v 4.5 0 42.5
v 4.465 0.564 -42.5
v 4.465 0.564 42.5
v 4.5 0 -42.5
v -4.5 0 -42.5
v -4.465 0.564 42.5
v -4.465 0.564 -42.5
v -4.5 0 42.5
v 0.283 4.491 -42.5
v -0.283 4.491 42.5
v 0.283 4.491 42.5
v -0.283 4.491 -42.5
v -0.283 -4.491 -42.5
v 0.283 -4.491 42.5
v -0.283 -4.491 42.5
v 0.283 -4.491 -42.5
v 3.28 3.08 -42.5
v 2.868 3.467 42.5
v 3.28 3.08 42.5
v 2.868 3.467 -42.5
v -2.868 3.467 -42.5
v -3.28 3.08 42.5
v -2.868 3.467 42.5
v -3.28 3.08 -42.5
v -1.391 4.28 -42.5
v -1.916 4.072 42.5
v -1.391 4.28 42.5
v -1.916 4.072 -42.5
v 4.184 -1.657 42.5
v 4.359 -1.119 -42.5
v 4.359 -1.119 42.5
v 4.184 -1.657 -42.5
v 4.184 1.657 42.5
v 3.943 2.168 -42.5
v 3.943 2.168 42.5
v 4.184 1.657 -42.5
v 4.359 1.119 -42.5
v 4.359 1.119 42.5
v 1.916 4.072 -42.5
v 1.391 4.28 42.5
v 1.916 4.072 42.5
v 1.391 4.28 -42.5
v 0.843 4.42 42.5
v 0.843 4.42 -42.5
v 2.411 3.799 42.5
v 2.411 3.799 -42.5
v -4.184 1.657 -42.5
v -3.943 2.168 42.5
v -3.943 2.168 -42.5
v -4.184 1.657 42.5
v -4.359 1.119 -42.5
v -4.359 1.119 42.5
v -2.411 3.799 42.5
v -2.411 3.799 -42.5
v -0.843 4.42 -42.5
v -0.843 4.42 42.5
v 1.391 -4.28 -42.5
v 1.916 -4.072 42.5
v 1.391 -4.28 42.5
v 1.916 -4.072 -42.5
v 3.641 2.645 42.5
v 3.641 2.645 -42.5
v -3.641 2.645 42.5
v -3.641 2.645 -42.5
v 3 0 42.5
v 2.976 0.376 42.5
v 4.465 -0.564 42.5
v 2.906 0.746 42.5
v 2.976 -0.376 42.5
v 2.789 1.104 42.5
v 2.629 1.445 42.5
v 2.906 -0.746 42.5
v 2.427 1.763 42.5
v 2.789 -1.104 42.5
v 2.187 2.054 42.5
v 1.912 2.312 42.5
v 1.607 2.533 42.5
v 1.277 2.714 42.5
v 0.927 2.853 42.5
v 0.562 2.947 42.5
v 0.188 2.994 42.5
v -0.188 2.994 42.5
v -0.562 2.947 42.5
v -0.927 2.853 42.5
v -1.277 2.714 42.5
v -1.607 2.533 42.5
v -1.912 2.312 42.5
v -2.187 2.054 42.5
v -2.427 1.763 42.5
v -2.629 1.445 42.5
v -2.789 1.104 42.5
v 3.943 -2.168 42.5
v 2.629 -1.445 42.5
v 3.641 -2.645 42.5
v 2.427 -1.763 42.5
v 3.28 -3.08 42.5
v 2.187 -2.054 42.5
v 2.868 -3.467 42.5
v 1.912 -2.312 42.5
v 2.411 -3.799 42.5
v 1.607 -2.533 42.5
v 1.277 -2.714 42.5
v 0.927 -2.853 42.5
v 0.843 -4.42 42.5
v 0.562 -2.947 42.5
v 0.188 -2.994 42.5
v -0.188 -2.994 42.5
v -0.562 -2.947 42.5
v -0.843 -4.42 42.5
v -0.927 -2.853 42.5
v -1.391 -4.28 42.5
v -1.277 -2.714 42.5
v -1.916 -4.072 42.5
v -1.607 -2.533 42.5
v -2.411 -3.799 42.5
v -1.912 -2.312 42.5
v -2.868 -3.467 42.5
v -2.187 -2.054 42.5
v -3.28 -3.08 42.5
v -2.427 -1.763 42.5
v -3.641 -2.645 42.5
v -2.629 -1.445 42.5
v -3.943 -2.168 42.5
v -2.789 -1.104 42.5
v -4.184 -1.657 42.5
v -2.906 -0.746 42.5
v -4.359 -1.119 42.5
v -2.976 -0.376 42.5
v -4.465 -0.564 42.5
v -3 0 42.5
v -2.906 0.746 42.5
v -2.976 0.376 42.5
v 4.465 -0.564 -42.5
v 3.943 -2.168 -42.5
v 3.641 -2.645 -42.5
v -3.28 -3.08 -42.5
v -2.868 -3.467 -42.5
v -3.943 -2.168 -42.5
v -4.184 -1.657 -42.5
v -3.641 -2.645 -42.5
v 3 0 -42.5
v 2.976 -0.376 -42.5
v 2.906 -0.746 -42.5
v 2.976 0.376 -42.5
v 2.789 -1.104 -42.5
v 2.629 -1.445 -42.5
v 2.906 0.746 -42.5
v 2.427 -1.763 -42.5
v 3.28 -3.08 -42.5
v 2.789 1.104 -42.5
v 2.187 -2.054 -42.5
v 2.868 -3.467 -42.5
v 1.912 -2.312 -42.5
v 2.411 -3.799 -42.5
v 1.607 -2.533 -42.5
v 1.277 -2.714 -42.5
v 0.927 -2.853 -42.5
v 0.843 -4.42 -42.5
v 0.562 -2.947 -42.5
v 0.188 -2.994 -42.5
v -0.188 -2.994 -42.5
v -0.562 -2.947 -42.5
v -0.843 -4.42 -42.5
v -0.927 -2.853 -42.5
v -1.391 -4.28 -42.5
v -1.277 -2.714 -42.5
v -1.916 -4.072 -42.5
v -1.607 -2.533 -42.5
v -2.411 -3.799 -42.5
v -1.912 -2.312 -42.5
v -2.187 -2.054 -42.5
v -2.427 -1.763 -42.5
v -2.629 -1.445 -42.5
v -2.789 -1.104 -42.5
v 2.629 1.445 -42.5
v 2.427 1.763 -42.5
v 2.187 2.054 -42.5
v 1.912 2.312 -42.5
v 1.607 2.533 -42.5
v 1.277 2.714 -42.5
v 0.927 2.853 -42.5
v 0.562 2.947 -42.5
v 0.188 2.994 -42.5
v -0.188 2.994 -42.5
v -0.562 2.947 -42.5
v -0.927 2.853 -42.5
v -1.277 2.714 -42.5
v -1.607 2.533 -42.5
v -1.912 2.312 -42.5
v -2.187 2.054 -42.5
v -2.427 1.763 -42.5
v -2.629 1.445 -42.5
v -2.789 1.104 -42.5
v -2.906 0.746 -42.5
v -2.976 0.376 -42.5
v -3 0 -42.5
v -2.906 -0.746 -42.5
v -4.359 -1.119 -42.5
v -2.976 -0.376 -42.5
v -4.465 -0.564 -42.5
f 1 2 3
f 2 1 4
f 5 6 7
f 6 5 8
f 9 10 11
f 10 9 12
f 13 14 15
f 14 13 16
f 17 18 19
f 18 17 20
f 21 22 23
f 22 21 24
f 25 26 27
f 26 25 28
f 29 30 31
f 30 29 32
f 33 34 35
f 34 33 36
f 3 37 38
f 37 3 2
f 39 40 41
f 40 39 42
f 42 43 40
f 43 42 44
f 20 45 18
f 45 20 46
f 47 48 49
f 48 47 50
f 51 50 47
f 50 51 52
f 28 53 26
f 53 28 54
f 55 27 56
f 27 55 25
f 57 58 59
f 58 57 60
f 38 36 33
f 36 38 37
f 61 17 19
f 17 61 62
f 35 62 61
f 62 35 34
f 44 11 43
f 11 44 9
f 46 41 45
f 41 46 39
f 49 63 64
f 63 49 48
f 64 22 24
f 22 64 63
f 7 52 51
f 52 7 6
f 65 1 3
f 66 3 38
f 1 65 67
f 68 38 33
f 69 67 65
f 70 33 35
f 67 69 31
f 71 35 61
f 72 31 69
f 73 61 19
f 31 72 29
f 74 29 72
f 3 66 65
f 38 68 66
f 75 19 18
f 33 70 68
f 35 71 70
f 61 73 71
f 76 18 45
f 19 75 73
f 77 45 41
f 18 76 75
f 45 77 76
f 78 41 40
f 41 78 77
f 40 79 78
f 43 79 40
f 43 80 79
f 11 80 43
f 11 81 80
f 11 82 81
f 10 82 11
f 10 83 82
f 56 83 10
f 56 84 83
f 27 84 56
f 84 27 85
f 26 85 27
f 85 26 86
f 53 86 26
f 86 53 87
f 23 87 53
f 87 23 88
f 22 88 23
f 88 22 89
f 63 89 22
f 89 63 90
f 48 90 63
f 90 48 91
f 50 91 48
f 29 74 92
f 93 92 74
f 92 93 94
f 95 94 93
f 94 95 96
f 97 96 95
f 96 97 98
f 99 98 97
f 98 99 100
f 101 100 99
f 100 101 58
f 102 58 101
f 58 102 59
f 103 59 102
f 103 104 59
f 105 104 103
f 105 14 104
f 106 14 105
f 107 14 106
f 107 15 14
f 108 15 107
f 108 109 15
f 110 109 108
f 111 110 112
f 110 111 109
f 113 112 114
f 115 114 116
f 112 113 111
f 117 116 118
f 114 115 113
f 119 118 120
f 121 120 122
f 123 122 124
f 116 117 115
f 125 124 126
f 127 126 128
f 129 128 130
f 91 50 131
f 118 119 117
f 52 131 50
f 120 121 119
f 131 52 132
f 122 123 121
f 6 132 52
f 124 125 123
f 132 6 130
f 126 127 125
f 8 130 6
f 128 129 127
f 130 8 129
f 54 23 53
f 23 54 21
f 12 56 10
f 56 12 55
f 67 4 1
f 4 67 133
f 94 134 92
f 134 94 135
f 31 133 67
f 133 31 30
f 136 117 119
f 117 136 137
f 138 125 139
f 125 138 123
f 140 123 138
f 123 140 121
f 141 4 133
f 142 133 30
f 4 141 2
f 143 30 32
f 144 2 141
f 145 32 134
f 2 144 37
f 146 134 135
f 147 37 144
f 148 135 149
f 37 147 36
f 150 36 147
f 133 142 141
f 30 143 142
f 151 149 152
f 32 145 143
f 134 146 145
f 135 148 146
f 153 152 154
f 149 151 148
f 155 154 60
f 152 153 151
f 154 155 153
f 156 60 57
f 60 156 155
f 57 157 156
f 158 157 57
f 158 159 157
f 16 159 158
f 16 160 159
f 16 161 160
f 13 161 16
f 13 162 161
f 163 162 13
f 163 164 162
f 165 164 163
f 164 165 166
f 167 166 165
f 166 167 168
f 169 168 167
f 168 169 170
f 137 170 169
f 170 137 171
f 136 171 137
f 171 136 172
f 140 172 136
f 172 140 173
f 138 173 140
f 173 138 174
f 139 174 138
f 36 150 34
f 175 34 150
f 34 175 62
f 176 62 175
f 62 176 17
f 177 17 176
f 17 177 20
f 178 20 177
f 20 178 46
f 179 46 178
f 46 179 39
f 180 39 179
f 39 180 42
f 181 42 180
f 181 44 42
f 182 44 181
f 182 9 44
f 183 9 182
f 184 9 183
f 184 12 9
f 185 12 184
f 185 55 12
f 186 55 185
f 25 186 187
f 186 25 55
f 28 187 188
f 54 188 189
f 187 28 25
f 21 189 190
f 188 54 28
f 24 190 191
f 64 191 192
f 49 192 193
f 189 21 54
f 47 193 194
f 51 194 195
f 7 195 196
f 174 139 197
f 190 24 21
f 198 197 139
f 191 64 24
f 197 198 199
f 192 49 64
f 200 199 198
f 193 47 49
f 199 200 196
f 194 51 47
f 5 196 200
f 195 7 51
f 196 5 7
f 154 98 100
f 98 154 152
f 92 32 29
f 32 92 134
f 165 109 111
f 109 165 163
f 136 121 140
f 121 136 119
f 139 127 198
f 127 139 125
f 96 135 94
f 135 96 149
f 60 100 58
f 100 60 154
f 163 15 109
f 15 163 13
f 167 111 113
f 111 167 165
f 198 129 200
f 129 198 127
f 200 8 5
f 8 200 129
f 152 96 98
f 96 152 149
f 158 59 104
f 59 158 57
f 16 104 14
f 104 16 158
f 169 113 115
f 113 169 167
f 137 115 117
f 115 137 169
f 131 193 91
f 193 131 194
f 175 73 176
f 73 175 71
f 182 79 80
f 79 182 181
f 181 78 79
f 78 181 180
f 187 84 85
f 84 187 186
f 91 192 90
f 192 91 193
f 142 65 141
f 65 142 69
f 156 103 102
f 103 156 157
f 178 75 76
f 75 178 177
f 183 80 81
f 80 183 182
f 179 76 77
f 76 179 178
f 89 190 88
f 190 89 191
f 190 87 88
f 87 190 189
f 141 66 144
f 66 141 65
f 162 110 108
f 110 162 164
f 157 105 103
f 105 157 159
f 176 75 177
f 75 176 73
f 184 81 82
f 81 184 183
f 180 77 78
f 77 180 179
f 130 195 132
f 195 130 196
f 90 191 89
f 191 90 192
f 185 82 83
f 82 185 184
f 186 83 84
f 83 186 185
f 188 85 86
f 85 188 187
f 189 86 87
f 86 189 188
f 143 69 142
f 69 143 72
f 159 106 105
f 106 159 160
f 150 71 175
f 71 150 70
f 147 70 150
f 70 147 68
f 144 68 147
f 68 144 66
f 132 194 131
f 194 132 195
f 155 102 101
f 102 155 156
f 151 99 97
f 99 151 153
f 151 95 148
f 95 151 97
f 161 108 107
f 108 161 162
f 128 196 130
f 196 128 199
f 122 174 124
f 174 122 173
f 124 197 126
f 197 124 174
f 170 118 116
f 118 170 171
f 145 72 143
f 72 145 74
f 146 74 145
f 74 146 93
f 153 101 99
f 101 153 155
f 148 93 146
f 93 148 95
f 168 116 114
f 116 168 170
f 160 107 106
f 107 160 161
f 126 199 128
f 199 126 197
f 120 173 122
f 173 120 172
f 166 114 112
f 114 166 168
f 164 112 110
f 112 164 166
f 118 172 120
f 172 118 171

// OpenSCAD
$fn = 50;


difference() {
	union() {
		translate(v = [0, 0, -42.5000000000]) {
			cylinder(h = 85, r = 4.5000000000);
		}
	}
	union() {
		translate(v = [0, 0, -100.0000000000]) {
			cylinder(h = 200, r = 3);
		}
	}
}
